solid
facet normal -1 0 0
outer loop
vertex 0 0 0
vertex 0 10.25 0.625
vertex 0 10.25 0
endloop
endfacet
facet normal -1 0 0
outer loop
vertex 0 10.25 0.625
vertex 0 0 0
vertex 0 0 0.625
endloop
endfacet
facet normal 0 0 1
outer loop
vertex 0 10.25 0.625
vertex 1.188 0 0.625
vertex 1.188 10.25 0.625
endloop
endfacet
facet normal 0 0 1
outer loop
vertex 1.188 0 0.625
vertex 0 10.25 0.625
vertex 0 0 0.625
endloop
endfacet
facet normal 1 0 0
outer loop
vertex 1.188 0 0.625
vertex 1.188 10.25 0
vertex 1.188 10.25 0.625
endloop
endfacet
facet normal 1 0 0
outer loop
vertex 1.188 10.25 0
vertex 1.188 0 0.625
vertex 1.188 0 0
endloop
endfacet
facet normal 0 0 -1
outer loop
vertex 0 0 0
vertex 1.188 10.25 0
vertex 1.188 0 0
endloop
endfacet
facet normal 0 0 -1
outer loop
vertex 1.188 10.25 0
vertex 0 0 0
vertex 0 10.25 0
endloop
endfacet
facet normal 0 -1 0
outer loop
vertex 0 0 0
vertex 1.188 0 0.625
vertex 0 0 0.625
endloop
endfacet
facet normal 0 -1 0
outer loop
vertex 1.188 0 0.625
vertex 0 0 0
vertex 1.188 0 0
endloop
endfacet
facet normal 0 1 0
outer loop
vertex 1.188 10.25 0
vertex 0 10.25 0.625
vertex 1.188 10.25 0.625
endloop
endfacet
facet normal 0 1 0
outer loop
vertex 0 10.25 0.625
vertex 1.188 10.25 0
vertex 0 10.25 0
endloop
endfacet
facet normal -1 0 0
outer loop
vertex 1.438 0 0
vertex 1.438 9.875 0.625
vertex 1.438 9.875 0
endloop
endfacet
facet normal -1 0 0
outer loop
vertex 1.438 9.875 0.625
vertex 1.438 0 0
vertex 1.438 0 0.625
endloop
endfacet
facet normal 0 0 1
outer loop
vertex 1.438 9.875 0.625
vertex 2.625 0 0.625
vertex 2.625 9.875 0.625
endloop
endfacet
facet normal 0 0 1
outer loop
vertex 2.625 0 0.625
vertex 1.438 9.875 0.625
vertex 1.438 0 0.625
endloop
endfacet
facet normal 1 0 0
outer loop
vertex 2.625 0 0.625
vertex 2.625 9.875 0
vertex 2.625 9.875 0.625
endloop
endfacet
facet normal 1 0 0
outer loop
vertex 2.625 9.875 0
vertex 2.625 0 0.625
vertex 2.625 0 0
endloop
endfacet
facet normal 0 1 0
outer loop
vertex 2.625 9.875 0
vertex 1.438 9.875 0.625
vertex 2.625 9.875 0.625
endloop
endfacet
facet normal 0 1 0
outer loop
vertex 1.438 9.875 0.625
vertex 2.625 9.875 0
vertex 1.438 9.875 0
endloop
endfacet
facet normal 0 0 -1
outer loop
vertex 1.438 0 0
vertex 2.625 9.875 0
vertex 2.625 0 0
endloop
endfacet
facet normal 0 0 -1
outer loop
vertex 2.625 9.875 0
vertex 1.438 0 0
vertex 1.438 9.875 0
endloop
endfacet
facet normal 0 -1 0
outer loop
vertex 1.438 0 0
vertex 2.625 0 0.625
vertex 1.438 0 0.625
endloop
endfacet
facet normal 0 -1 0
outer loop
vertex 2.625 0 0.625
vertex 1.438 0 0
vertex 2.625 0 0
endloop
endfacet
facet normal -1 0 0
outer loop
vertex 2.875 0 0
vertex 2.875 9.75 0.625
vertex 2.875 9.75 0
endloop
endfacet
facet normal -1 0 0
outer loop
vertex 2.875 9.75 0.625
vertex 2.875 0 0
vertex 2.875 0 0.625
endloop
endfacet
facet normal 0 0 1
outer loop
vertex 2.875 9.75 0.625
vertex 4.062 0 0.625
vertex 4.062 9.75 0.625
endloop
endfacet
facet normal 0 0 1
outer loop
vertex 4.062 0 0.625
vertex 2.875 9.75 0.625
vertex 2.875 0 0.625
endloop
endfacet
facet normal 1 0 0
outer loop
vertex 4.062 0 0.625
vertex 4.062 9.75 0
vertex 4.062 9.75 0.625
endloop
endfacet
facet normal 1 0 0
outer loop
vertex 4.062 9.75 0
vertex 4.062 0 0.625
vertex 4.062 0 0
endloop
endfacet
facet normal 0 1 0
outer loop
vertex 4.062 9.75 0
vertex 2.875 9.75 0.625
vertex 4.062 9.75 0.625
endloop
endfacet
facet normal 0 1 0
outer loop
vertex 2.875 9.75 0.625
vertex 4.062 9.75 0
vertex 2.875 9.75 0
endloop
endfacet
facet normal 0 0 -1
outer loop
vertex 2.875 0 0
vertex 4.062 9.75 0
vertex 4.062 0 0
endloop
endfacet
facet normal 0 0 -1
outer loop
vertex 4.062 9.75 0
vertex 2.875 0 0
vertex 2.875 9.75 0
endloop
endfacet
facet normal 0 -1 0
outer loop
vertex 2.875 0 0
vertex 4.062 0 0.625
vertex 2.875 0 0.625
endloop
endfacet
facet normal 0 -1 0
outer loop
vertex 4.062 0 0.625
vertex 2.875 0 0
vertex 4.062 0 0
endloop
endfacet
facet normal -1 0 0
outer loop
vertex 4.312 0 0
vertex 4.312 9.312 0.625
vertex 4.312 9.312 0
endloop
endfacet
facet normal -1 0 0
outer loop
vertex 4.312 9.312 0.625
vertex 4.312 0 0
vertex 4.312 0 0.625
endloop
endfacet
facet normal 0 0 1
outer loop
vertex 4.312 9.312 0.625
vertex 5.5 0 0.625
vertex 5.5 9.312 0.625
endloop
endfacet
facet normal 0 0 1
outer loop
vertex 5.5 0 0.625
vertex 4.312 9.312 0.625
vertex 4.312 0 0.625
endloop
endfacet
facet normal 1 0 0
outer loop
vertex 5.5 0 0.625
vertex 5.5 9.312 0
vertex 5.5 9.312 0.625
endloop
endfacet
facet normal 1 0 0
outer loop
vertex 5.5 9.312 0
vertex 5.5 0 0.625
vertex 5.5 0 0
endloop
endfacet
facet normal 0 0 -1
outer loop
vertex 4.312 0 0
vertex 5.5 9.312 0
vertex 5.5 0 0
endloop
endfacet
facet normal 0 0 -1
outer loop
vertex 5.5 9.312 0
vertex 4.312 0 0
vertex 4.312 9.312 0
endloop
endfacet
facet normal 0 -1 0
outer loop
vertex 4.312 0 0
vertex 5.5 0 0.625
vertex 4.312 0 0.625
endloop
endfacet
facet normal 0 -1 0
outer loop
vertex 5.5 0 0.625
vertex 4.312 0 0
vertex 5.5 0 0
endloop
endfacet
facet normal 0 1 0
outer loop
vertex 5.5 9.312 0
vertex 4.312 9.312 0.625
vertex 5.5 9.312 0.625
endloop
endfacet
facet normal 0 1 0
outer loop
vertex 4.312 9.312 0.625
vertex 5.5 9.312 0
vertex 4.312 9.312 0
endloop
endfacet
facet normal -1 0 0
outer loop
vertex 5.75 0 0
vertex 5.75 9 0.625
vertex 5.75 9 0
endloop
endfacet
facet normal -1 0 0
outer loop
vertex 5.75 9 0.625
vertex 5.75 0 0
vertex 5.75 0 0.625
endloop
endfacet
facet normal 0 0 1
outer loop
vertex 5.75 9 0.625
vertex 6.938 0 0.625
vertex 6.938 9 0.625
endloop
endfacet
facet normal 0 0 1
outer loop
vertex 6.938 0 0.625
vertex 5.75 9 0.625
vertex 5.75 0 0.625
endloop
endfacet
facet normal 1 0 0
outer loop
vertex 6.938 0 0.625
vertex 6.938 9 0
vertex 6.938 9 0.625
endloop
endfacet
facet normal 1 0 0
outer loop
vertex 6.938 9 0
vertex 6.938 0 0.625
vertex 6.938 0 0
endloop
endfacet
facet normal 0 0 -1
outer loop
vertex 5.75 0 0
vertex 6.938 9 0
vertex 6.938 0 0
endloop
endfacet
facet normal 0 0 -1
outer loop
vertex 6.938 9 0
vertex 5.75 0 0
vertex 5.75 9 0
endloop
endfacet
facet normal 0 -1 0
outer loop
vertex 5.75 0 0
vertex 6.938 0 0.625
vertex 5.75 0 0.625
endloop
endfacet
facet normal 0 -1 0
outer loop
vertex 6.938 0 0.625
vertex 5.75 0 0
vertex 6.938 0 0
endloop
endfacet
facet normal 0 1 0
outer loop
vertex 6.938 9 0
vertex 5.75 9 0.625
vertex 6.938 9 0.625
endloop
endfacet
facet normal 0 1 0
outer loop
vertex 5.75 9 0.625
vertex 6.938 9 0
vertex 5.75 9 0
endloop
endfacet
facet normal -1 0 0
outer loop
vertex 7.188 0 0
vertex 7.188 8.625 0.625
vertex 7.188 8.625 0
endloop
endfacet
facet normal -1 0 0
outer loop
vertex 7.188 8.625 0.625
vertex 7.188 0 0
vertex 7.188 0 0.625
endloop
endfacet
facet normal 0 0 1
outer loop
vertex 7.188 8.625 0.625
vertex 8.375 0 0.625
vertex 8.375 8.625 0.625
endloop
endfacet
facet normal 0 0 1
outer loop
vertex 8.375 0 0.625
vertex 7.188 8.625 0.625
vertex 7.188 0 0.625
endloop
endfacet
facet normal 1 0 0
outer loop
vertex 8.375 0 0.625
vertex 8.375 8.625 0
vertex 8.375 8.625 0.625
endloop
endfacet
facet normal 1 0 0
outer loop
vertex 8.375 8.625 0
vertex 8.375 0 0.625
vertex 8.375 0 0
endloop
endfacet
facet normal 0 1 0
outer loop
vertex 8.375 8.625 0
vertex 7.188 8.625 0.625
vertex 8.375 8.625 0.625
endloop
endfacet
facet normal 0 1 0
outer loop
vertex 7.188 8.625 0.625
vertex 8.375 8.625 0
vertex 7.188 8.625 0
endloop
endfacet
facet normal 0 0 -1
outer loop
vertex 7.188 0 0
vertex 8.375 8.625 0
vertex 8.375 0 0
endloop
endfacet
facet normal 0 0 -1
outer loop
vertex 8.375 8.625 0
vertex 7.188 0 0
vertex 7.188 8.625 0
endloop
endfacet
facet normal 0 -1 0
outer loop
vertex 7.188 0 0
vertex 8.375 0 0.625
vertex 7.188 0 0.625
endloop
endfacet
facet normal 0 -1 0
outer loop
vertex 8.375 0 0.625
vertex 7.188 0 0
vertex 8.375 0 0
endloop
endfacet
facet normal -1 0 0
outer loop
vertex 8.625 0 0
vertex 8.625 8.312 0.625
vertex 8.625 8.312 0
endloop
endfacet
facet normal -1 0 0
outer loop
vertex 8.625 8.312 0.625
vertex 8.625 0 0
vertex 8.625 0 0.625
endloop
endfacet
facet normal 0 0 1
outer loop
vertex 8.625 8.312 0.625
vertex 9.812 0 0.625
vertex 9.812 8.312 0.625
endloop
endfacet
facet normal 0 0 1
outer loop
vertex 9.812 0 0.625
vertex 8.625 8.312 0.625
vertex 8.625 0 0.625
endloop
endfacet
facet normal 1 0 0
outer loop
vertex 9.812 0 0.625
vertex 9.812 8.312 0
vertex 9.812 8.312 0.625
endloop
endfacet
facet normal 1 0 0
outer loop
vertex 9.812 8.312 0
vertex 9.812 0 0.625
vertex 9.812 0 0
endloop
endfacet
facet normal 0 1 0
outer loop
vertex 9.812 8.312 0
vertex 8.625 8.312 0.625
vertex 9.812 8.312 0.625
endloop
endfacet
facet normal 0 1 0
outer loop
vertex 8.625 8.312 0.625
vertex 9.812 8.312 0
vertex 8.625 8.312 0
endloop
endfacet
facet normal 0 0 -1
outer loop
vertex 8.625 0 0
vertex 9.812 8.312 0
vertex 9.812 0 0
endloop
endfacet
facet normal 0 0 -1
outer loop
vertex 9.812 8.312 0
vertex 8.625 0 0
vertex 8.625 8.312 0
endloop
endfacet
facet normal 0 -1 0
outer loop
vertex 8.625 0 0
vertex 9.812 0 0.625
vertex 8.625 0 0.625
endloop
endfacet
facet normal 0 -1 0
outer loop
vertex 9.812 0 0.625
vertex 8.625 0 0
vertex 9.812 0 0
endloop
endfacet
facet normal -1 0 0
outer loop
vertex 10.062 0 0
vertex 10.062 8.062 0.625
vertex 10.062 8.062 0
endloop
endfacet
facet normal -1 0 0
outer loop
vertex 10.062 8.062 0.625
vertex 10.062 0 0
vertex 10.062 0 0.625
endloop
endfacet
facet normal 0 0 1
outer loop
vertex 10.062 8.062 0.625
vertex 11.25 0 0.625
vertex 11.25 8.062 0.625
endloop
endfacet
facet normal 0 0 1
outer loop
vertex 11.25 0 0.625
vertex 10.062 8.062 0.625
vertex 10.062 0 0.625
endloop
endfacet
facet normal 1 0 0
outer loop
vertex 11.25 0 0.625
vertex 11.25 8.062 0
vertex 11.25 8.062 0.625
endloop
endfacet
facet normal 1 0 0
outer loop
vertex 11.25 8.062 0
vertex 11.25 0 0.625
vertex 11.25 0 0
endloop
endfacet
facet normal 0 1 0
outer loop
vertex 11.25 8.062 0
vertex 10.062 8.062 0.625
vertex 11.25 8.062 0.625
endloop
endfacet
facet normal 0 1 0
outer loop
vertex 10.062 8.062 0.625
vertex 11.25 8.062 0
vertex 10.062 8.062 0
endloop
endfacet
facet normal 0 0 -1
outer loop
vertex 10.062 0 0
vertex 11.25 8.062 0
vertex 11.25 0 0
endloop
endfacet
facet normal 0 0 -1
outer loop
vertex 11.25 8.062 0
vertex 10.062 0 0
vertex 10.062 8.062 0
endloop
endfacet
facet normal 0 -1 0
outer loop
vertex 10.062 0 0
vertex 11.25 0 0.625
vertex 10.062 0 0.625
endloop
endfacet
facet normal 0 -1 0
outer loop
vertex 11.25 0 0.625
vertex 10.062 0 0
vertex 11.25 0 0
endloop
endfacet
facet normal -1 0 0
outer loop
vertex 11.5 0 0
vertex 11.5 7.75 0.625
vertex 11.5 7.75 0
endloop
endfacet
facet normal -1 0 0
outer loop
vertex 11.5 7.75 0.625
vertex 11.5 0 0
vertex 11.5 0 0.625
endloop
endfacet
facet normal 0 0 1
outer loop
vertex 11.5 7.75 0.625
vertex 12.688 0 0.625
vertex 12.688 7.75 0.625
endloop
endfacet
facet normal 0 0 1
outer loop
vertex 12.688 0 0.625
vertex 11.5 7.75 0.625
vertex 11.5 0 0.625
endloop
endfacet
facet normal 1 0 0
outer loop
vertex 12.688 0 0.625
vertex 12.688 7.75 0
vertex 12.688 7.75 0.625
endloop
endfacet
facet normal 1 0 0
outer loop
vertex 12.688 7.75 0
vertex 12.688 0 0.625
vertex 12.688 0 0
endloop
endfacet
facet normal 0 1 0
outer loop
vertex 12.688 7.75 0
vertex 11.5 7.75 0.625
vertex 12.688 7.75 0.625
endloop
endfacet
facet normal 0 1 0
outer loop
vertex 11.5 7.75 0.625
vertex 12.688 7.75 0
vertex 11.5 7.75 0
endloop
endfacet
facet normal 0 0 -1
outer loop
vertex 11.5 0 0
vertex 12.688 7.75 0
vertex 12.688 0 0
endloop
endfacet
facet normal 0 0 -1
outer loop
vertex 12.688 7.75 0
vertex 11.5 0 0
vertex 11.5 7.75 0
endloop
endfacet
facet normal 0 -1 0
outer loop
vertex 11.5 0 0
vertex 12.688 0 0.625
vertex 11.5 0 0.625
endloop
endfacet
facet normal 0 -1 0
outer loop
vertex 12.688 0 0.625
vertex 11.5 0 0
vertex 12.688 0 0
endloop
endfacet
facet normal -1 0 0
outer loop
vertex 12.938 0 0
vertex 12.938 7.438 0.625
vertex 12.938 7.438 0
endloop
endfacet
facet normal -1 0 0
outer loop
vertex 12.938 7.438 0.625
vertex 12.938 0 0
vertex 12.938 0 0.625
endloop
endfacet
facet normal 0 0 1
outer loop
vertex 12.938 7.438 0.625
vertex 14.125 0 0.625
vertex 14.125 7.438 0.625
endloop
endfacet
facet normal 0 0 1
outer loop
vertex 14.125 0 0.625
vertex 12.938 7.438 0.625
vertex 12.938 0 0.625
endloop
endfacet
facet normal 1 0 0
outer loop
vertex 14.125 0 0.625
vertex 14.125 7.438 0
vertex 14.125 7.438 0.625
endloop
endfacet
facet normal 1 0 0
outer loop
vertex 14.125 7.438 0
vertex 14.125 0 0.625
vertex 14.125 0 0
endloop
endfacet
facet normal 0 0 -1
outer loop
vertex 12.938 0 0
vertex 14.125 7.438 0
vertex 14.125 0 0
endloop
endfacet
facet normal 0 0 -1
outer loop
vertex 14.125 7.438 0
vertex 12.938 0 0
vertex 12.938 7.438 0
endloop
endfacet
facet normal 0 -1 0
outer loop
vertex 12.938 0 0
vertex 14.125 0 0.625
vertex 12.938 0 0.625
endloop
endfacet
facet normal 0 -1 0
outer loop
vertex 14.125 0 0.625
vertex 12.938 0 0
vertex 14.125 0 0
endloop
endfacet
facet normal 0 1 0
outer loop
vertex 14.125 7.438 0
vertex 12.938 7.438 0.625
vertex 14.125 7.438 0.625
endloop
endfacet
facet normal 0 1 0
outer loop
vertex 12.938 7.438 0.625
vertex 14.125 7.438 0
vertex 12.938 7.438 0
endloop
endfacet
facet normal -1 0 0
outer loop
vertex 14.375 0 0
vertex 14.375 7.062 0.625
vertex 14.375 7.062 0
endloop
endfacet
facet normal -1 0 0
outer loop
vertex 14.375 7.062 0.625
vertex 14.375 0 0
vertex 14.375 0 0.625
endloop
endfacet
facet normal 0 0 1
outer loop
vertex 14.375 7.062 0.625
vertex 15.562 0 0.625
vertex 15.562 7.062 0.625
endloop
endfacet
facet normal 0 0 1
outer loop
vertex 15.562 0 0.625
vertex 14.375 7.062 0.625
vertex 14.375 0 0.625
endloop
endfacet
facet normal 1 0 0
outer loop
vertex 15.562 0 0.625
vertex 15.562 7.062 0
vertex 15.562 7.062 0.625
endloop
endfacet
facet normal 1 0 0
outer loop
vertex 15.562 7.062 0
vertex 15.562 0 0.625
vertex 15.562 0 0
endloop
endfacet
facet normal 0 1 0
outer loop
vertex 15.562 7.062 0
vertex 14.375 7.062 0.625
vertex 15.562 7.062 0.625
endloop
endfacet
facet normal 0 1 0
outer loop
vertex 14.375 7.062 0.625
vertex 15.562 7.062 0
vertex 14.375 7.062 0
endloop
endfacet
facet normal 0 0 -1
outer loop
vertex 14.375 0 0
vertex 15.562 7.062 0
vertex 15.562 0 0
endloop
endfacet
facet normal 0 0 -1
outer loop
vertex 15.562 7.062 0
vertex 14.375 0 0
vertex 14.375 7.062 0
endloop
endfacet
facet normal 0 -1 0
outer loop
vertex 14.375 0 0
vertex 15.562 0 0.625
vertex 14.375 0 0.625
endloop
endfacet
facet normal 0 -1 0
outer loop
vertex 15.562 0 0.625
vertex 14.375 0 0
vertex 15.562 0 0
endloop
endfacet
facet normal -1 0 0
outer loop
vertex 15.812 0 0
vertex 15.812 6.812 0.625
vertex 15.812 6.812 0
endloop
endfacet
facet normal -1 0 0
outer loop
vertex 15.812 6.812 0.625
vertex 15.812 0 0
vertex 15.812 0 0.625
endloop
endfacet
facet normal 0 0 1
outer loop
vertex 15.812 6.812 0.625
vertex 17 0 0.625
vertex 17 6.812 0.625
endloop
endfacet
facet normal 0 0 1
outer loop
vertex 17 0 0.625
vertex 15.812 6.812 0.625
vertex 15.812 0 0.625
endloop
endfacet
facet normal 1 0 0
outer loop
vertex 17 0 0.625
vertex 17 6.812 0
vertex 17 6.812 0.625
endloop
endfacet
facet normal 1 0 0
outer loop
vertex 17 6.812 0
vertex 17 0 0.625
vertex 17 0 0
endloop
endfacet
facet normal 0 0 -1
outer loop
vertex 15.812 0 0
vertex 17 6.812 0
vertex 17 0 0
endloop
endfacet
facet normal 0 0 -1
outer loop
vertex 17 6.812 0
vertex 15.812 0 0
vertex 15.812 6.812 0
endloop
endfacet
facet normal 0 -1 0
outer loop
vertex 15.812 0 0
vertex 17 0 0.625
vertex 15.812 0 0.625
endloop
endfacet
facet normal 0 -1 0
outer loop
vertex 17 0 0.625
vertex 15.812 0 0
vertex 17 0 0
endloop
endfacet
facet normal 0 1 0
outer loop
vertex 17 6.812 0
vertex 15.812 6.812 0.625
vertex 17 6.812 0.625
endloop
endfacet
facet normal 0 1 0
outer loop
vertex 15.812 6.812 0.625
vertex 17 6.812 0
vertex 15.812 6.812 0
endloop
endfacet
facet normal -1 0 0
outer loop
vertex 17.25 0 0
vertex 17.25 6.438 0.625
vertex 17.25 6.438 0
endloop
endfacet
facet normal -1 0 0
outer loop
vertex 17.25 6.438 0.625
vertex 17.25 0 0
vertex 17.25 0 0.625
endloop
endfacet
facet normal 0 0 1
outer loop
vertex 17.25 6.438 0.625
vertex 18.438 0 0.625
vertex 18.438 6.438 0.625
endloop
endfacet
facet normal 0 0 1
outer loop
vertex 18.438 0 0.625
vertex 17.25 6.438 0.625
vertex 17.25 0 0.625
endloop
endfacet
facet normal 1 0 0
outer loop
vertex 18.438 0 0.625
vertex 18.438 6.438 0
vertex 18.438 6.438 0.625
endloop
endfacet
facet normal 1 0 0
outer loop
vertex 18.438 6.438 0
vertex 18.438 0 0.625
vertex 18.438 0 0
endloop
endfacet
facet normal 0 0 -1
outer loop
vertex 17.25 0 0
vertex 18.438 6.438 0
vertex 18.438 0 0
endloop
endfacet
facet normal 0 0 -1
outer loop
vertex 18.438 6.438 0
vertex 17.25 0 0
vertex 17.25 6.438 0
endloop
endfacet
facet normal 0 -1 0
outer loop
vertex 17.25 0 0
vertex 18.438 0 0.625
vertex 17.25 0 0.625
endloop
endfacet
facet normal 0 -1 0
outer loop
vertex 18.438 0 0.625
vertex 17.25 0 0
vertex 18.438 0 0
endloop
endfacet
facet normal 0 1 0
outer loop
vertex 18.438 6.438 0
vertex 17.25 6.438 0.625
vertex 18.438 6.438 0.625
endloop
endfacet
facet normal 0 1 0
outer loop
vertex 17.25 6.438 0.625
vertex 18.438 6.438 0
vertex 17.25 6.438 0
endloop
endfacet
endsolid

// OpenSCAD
// Generated by SolidPython 1.1.1 on 2021-10-28 00:38:58
$fn = 25;


union() {
	translate(v = [0, 0, 0]) {
		cube(size = [1.1875000000, 10.2500000000, 0.6250000000]);
	}
	translate(v = [1.4375000000, 0, 0]) {
		cube(size = [1.1875000000, 9.8750000000, 0.6250000000]);
	}
	translate(v = [2.8750000000, 0, 0]) {
		cube(size = [1.1875000000, 9.7500000000, 0.6250000000]);
	}
	translate(v = [4.3125000000, 0, 0]) {
		cube(size = [1.1875000000, 9.3125000000, 0.6250000000]);
	}
	translate(v = [5.7500000000, 0, 0]) {
		cube(size = [1.1875000000, 9, 0.6250000000]);
	}
	translate(v = [7.1875000000, 0, 0]) {
		cube(size = [1.1875000000, 8.6250000000, 0.6250000000]);
	}
	translate(v = [8.6250000000, 0, 0]) {
		cube(size = [1.1875000000, 8.3125000000, 0.6250000000]);
	}
	translate(v = [10.0625000000, 0, 0]) {
		cube(size = [1.1875000000, 8.0625000000, 0.6250000000]);
	}
	translate(v = [11.5000000000, 0, 0]) {
		cube(size = [1.1875000000, 7.7500000000, 0.6250000000]);
	}
	translate(v = [12.9375000000, 0, 0]) {
		cube(size = [1.1875000000, 7.4375000000, 0.6250000000]);
	}
	translate(v = [14.3750000000, 0, 0]) {
		cube(size = [1.1875000000, 7.0625000000, 0.6250000000]);
	}
	translate(v = [15.8125000000, 0, 0]) {
		cube(size = [1.1875000000, 6.8125000000, 0.6250000000]);
	}
	translate(v = [17.2500000000, 0, 0]) {
		cube(size = [1.1875000000, 6.4375000000, 0.6250000000]);
	}
}
/***********************************************
*********      SolidPython code:      **********
************************************************
 
# SolidPython example code 
# Brygg Ullmer, Clemson University
# Written 2021-10-28

from       solid import * # load in SolidPython/SCAD support code
from synthShapes import *
import yaml

yfn = 'xylophone.yaml'
yf  = open(yfn, 'r')
yd  = yaml.safe_load(yf)

barWidth   = convertFractional(yd['allBars']['wide'])
barThick   = convertFractional(yd['allBars']['thick'])
between    = convertFractional(yd['allBars']['between'])
barLengths = convertFractionalList(yd['lengths'])

#print(barWidth, barThick, barLengths)

outGeom = None; offset = 0
for barLength in barLengths:
  c1 = cube([barWidth, barLength, barThick])
  c2 = translate([offset,0,0])(c1)

  if outGeom == None: outGeom = c2
  else:               outGeom += c2
  offset += barWidth + between

radialSegments = 25; hdr = '$fn = %s;' % radialSegments # create a header for the export
scad_render_to_file(outGeom, 'exXyl01.scad', file_header=hdr) # write the .scad file

### end ###

 
 
************************************************/
